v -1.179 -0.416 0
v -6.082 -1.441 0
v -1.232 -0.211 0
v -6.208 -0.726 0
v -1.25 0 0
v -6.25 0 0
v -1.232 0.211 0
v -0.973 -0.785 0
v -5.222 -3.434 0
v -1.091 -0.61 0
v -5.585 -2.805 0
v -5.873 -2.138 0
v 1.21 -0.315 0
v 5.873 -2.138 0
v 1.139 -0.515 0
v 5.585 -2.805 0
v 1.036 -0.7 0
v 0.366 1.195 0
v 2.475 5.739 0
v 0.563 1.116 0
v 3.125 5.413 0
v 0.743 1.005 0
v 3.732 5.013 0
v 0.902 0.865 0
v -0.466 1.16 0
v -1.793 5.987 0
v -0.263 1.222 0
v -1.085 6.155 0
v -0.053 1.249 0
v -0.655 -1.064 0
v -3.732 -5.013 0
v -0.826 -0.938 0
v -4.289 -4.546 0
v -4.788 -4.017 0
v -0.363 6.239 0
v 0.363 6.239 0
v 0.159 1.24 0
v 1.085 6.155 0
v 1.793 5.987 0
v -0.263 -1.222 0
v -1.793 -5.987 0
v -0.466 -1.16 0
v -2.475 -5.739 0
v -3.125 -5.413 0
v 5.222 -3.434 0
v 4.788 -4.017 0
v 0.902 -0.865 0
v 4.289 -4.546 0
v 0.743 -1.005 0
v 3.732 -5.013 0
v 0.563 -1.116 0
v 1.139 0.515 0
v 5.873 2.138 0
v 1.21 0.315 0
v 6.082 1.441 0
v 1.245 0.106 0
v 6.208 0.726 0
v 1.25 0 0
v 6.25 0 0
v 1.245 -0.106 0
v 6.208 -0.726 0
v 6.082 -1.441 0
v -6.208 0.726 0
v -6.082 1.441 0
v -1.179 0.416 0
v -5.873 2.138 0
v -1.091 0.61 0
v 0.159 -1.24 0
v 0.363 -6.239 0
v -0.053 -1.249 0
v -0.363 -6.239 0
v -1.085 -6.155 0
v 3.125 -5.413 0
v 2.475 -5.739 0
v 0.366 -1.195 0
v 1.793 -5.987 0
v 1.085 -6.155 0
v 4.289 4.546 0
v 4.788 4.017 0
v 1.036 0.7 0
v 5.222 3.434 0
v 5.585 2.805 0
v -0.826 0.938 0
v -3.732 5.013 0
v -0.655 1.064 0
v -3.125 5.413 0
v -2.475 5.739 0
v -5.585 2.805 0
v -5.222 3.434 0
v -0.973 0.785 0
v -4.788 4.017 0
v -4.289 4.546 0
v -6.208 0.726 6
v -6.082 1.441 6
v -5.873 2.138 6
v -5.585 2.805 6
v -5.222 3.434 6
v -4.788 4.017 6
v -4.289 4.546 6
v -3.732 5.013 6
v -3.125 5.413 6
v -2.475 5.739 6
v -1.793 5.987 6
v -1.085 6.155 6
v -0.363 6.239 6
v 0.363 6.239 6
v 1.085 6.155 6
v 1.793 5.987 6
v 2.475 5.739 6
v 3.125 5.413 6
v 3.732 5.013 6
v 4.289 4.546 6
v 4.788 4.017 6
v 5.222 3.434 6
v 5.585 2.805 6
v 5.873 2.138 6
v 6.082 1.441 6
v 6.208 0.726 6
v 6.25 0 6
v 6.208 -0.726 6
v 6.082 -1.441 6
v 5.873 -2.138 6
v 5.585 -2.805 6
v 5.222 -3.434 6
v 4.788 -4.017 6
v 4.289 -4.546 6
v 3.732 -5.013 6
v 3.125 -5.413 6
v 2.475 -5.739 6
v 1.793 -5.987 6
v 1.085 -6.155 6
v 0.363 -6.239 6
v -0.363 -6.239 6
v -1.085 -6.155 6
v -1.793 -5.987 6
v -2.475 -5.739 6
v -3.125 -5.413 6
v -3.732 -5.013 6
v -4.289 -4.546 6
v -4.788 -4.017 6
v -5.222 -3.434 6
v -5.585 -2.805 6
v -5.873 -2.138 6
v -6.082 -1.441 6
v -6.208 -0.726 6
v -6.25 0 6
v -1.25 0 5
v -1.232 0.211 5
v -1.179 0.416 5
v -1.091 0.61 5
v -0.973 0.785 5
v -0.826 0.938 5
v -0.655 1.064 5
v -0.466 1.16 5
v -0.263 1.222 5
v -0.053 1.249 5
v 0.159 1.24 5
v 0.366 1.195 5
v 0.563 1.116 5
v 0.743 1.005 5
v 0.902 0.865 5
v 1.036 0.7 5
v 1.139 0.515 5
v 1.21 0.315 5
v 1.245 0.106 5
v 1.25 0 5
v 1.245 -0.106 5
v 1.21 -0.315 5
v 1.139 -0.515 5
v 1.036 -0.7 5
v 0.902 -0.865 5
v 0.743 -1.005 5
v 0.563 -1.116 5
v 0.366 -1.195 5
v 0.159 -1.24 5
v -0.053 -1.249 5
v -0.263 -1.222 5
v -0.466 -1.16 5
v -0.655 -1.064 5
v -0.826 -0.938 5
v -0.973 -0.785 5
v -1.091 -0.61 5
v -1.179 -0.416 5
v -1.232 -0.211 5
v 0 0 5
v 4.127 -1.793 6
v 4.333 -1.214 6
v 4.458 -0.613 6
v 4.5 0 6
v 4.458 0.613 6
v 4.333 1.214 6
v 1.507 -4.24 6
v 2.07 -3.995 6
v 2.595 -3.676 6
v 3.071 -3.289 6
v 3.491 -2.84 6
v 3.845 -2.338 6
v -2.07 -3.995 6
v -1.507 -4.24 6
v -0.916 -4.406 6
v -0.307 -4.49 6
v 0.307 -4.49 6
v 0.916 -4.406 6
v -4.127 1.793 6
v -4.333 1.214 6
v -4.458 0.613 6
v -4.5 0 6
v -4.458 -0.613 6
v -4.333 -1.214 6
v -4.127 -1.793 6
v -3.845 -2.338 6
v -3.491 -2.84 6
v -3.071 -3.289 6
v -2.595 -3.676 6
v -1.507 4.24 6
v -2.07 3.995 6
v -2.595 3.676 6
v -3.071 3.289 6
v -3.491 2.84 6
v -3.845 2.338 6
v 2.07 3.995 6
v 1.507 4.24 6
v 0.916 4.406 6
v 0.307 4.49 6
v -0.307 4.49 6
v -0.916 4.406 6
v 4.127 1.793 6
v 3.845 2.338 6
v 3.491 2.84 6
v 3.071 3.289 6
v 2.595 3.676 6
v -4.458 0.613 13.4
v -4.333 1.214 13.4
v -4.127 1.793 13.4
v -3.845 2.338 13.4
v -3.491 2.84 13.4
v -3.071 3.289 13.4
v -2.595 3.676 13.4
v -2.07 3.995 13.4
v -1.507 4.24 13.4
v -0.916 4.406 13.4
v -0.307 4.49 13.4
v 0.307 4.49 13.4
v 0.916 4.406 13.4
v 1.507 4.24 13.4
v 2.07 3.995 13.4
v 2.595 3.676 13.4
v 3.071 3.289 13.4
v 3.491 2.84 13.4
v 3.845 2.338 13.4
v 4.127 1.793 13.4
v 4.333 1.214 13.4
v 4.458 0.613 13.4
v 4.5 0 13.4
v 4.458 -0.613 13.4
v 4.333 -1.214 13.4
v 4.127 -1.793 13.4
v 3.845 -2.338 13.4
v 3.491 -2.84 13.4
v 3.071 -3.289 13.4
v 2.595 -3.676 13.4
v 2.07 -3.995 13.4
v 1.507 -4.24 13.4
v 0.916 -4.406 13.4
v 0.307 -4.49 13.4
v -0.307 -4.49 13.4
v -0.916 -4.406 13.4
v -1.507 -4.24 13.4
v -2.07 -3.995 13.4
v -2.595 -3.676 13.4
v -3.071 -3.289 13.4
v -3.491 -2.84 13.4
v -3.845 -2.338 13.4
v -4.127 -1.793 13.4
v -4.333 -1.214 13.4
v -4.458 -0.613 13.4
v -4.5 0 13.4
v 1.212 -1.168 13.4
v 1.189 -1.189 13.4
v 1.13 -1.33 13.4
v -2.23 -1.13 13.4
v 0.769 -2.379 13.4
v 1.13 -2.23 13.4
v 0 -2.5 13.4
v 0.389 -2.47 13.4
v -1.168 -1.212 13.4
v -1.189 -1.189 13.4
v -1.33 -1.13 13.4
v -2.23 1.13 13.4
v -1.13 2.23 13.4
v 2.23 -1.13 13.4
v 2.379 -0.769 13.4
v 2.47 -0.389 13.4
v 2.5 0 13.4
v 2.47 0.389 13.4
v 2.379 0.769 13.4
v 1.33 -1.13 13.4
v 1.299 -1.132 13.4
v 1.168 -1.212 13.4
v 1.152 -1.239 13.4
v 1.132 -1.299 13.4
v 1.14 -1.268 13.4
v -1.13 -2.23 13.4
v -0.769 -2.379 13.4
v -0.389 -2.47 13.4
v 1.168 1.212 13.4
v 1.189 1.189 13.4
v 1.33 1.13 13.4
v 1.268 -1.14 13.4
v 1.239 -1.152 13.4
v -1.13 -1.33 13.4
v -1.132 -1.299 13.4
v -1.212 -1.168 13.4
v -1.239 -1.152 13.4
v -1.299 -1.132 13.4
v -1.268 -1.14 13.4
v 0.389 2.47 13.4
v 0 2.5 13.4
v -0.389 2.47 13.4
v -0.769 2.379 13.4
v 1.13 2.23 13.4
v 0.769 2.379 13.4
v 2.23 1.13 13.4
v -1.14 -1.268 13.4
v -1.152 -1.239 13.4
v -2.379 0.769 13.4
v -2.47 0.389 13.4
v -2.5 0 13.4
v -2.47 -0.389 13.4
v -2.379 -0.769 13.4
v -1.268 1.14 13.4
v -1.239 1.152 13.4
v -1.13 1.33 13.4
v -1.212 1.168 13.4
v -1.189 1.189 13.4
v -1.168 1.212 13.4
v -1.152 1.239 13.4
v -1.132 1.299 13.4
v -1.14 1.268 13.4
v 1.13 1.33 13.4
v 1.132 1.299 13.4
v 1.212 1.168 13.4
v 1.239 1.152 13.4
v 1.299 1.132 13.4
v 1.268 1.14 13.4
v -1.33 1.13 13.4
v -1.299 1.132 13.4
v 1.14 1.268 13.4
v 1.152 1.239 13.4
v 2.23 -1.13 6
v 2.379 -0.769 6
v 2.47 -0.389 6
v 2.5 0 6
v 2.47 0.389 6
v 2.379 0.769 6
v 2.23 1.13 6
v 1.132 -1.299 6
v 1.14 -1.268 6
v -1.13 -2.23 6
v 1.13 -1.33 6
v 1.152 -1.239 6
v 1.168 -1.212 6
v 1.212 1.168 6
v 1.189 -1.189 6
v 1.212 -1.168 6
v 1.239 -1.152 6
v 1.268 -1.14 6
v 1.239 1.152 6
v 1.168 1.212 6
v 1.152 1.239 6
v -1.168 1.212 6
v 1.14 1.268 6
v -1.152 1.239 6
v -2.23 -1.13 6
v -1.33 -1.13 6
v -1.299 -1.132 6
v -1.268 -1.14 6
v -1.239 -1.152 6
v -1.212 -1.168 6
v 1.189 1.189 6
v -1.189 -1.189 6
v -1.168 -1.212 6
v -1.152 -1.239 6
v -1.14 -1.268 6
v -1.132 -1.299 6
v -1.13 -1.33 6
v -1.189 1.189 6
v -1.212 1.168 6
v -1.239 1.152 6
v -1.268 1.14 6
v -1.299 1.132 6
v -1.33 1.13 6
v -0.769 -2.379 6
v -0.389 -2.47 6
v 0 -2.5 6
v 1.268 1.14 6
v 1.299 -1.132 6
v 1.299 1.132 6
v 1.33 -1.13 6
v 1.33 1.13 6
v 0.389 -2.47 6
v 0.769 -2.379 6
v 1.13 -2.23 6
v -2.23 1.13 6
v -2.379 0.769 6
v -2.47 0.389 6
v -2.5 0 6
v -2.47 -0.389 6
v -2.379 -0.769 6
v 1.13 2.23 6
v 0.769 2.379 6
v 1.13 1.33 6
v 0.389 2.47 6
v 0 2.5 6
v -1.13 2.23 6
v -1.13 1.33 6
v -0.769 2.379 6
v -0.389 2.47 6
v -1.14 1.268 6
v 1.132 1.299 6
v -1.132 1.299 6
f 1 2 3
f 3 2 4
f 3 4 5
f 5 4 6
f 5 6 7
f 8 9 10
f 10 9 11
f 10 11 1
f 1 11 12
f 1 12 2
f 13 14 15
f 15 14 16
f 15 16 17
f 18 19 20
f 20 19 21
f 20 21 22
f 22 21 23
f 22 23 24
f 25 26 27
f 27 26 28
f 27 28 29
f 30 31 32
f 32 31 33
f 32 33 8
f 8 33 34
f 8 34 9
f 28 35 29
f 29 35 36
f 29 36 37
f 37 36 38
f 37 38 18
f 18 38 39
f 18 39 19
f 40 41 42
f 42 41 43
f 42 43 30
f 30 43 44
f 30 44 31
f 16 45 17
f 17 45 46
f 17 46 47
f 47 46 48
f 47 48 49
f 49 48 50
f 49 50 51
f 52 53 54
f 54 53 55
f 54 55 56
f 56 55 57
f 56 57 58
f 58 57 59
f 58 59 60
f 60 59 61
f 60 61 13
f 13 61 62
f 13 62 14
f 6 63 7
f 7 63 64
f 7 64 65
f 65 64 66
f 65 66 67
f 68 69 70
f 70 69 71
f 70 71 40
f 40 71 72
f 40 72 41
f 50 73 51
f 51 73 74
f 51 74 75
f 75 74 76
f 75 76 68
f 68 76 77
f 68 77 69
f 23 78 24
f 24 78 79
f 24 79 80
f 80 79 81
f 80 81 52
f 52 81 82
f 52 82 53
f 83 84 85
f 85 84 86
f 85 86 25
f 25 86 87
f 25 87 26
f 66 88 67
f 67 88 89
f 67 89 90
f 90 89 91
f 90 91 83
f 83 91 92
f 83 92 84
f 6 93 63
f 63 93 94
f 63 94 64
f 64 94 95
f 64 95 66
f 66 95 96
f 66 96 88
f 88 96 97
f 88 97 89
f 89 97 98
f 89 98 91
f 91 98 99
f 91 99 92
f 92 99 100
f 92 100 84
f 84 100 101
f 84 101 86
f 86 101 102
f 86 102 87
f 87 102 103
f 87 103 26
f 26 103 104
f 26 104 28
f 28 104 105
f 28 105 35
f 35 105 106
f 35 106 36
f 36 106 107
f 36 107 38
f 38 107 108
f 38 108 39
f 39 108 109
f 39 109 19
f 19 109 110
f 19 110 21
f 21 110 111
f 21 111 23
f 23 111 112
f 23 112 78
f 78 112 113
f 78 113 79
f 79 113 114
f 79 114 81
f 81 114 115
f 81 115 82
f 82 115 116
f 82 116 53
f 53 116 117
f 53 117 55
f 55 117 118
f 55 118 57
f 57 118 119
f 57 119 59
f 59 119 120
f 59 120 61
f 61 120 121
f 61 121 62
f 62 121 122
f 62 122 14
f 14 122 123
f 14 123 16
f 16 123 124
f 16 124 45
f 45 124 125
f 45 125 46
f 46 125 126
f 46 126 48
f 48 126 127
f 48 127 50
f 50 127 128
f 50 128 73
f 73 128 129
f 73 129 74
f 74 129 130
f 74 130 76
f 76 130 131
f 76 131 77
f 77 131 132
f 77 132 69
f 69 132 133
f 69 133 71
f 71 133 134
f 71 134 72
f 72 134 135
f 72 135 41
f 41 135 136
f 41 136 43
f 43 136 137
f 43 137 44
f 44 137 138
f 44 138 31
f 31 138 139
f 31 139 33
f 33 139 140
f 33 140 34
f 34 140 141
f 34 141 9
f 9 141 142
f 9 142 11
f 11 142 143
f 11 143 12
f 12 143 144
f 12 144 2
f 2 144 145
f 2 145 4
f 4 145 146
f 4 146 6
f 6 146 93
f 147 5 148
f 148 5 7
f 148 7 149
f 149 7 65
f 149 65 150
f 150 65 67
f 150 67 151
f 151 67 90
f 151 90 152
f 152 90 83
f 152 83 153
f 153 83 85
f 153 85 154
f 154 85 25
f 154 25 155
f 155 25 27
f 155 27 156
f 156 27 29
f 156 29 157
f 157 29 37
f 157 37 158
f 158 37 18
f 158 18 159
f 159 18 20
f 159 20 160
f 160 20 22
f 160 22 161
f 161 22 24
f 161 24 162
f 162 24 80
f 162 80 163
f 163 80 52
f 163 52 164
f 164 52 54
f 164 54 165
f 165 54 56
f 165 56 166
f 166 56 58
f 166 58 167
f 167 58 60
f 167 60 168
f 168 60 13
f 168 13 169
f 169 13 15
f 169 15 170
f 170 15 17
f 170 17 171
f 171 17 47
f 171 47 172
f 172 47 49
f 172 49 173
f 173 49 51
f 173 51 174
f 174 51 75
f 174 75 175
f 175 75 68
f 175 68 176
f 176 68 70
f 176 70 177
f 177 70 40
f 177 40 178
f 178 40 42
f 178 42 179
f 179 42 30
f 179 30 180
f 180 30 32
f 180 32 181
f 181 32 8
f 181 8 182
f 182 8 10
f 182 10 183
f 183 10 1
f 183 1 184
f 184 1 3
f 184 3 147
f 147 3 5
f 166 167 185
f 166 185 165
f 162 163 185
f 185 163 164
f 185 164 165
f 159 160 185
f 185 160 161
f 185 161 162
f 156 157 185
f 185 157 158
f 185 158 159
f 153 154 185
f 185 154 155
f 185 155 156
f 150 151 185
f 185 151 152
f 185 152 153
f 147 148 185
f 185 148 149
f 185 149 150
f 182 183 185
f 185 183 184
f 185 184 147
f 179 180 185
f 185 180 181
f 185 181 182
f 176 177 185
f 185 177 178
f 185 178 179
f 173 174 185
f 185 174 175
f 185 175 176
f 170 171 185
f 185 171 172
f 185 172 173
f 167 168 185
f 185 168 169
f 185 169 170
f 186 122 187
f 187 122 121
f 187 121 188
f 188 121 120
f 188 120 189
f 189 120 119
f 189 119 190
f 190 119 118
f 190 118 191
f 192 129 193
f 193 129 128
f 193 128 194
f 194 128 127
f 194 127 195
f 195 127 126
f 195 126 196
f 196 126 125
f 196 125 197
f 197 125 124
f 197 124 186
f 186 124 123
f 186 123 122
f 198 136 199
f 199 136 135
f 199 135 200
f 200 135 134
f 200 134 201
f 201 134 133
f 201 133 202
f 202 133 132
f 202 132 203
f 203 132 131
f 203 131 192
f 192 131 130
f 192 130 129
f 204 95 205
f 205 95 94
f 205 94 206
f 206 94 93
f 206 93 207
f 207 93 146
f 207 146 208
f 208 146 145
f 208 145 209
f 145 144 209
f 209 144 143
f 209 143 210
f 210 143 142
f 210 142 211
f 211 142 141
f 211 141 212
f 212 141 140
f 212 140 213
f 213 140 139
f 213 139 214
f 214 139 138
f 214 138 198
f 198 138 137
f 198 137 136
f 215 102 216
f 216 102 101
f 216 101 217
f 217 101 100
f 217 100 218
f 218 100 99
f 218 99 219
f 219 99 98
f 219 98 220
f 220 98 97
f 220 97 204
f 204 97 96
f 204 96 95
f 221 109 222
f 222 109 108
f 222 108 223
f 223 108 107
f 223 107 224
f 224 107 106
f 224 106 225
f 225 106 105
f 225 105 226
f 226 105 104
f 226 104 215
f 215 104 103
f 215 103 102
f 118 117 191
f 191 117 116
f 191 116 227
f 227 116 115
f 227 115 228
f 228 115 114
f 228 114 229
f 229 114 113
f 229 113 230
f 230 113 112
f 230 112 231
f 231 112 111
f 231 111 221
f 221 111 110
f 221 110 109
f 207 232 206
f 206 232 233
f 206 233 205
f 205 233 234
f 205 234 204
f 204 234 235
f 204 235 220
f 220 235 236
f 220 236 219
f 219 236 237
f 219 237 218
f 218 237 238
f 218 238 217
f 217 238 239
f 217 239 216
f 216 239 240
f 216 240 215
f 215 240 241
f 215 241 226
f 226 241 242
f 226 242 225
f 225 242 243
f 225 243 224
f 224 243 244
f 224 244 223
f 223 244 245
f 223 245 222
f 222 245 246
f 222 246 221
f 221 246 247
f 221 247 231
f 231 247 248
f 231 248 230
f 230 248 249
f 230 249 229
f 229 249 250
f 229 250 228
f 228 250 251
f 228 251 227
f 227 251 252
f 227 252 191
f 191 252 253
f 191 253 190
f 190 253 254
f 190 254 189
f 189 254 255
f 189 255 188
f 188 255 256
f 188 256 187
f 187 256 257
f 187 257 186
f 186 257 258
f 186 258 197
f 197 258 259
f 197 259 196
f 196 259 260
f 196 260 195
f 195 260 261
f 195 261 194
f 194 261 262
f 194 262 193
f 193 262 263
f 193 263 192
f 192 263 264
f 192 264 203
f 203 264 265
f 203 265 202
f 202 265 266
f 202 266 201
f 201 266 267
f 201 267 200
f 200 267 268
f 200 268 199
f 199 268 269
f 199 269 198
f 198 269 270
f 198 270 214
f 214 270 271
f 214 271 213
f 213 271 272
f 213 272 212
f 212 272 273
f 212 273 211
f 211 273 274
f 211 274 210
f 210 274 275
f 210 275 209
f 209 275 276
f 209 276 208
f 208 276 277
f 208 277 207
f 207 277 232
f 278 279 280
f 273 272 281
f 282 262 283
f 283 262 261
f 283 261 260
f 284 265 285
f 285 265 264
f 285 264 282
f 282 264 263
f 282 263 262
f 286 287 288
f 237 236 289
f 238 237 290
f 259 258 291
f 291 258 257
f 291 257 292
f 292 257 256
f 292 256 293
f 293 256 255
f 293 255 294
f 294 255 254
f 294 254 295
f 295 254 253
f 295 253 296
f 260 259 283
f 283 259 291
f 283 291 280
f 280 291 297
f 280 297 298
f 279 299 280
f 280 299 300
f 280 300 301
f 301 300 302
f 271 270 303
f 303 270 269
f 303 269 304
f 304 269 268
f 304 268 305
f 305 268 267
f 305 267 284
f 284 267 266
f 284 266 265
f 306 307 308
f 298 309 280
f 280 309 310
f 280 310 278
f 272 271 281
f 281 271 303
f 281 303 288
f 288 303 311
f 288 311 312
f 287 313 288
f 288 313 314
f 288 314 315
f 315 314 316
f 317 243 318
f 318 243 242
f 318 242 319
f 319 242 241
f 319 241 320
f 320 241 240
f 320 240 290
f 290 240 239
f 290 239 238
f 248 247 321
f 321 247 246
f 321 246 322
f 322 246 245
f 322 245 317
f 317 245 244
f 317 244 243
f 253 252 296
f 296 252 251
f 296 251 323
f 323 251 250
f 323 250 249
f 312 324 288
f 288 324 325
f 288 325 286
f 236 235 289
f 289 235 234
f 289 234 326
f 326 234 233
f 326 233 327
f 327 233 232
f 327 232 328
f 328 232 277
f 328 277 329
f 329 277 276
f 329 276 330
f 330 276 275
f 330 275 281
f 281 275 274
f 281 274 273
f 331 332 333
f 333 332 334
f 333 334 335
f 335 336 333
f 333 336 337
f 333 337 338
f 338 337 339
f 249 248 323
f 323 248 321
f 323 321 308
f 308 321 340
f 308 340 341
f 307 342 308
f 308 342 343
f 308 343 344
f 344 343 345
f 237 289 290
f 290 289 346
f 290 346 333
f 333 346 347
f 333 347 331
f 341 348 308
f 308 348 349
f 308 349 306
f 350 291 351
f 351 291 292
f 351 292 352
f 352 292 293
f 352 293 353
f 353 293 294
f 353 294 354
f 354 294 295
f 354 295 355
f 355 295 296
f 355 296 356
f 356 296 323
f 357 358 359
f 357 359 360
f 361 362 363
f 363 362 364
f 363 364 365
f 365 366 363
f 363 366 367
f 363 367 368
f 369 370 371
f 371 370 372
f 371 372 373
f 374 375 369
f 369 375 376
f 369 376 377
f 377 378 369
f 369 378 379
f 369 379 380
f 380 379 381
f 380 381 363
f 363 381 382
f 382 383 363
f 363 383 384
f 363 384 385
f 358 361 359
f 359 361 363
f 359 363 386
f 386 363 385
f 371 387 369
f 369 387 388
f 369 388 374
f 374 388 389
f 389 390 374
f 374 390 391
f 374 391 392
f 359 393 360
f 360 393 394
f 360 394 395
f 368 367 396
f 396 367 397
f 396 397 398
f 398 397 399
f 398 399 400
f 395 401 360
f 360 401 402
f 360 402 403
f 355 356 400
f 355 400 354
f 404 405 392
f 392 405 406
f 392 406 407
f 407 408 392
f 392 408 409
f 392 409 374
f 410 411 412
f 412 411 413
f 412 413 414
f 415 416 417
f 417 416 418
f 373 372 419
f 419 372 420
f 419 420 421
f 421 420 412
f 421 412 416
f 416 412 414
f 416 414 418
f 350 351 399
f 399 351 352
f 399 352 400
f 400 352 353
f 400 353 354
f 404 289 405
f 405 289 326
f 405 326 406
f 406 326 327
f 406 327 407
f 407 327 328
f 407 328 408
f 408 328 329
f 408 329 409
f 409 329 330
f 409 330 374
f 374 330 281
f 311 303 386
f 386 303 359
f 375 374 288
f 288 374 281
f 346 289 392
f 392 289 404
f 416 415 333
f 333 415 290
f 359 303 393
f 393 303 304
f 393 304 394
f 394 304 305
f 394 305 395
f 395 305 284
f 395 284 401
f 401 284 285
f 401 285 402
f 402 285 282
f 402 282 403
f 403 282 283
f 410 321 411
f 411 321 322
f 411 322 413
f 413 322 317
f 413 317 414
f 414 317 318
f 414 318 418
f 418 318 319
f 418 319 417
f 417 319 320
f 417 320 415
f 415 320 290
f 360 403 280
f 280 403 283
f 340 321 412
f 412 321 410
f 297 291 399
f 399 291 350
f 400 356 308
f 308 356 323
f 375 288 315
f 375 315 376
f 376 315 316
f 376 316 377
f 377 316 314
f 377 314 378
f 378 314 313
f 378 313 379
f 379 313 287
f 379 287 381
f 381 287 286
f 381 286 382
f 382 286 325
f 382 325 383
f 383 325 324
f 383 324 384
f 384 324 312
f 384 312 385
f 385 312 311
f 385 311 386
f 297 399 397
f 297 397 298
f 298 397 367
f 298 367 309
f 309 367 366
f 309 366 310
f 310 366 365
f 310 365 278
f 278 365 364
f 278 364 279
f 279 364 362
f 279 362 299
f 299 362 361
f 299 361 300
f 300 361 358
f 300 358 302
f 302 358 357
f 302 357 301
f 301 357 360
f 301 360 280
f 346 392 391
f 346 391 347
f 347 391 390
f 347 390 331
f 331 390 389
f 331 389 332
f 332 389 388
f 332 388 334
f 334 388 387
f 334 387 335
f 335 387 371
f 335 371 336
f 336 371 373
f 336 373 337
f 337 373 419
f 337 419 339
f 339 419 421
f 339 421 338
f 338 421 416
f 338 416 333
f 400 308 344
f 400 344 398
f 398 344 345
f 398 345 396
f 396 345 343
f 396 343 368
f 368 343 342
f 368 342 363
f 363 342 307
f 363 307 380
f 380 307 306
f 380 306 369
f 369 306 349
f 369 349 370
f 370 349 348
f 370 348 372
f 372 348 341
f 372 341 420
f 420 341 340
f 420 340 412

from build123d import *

# Parameters (mm, degrees)
SKETCH_1_R          = 6.25
SKETCH_1_R_2        = 1.25
EXTRUDE_1_DEPTH     = 5
EXTRUDE_START       = 5
SKETCH_1_5_R        = 6.25
EXTRUDE_2_DEPTH     = 1
SKETCH_2_R          = 4.5
EXTRUDE_3_DEPTH     = 7.4
CUT_EXTRUDE_START   = 7.4
CUT_EXTRUDE_1_DEPTH = 7.4
FILLET_1_R          = 0.2


with BuildPart() as part:
    # 草图1 → 凸台-拉伸1 (new body)
    with BuildSketch(Plane.XY):
        Circle(SKETCH_1_R)
        Circle(SKETCH_1_R_2, mode=Mode.SUBTRACT)
    extrude(amount=EXTRUDE_1_DEPTH)

    # 草图1<5> → 凸台-拉伸2 (add)
    with BuildSketch(Plane.XY.offset(EXTRUDE_START)):
        Circle(SKETCH_1_5_R)
    extrude(amount=EXTRUDE_2_DEPTH)

    # 草图2 → 凸台-拉伸3 (add)
    with BuildSketch(Plane.XY.offset(6)):
        Circle(SKETCH_2_R)
    extrude(amount=EXTRUDE_3_DEPTH)

    # 草图2<3> → 切除-拉伸1 (cut)
    with BuildSketch(Plane.XY.offset(6).offset(CUT_EXTRUDE_START)):
        with BuildLine():
            Line((-1.130029762, -1.130029762), (-1.130029762, -2.230029762))
            ThreePointArc((-1.130029762, -2.230029762), (0, -2.5), (1.130029762, -2.230029762))
            Line((1.130029762, -2.230029762), (1.130029762, -1.130029762))
            Line((1.130029762, -1.130029762), (2.230029762, -1.130029762))
            ThreePointArc((2.230029762, -1.130029762), (2.5, 0), (2.230029762, 1.130029762))
            Line((2.230029762, 1.130029762), (1.130029762, 1.130029762))
            Line((1.130029762, 1.130029762), (1.130029762, 2.230029762))
            ThreePointArc((1.130029762, 2.230029762), (0, 2.5), (-1.130029762, 2.230029762))
            Line((-1.130029762, 2.230029762), (-1.130029762, 1.130029762))
            Line((-1.130029762, 1.130029762), (-2.230029762, 1.130029762))
            ThreePointArc((-2.230029762, 1.130029762), (-2.5, 0), (-2.230029762, -1.130029762))
            Line((-2.230029762, -1.130029762), (-1.130029762, -1.130029762))
        make_face()
    extrude(amount=-CUT_EXTRUDE_1_DEPTH, mode=Mode.SUBTRACT)

    # 圆角1
    fillet_1_edges = [part.edges().sort_by_distance(p)[0] for p in [
        (-1.130029762, -1.130029762, 9.7),
        (-1.130029762, 1.130029762, 9.7),
        (1.130029762, 1.130029762, 9.7),
        (1.130029762, -1.130029762, 9.7),
    ]]
    fillet(fillet_1_edges, radius=FILLET_1_R)


solid = part.part
